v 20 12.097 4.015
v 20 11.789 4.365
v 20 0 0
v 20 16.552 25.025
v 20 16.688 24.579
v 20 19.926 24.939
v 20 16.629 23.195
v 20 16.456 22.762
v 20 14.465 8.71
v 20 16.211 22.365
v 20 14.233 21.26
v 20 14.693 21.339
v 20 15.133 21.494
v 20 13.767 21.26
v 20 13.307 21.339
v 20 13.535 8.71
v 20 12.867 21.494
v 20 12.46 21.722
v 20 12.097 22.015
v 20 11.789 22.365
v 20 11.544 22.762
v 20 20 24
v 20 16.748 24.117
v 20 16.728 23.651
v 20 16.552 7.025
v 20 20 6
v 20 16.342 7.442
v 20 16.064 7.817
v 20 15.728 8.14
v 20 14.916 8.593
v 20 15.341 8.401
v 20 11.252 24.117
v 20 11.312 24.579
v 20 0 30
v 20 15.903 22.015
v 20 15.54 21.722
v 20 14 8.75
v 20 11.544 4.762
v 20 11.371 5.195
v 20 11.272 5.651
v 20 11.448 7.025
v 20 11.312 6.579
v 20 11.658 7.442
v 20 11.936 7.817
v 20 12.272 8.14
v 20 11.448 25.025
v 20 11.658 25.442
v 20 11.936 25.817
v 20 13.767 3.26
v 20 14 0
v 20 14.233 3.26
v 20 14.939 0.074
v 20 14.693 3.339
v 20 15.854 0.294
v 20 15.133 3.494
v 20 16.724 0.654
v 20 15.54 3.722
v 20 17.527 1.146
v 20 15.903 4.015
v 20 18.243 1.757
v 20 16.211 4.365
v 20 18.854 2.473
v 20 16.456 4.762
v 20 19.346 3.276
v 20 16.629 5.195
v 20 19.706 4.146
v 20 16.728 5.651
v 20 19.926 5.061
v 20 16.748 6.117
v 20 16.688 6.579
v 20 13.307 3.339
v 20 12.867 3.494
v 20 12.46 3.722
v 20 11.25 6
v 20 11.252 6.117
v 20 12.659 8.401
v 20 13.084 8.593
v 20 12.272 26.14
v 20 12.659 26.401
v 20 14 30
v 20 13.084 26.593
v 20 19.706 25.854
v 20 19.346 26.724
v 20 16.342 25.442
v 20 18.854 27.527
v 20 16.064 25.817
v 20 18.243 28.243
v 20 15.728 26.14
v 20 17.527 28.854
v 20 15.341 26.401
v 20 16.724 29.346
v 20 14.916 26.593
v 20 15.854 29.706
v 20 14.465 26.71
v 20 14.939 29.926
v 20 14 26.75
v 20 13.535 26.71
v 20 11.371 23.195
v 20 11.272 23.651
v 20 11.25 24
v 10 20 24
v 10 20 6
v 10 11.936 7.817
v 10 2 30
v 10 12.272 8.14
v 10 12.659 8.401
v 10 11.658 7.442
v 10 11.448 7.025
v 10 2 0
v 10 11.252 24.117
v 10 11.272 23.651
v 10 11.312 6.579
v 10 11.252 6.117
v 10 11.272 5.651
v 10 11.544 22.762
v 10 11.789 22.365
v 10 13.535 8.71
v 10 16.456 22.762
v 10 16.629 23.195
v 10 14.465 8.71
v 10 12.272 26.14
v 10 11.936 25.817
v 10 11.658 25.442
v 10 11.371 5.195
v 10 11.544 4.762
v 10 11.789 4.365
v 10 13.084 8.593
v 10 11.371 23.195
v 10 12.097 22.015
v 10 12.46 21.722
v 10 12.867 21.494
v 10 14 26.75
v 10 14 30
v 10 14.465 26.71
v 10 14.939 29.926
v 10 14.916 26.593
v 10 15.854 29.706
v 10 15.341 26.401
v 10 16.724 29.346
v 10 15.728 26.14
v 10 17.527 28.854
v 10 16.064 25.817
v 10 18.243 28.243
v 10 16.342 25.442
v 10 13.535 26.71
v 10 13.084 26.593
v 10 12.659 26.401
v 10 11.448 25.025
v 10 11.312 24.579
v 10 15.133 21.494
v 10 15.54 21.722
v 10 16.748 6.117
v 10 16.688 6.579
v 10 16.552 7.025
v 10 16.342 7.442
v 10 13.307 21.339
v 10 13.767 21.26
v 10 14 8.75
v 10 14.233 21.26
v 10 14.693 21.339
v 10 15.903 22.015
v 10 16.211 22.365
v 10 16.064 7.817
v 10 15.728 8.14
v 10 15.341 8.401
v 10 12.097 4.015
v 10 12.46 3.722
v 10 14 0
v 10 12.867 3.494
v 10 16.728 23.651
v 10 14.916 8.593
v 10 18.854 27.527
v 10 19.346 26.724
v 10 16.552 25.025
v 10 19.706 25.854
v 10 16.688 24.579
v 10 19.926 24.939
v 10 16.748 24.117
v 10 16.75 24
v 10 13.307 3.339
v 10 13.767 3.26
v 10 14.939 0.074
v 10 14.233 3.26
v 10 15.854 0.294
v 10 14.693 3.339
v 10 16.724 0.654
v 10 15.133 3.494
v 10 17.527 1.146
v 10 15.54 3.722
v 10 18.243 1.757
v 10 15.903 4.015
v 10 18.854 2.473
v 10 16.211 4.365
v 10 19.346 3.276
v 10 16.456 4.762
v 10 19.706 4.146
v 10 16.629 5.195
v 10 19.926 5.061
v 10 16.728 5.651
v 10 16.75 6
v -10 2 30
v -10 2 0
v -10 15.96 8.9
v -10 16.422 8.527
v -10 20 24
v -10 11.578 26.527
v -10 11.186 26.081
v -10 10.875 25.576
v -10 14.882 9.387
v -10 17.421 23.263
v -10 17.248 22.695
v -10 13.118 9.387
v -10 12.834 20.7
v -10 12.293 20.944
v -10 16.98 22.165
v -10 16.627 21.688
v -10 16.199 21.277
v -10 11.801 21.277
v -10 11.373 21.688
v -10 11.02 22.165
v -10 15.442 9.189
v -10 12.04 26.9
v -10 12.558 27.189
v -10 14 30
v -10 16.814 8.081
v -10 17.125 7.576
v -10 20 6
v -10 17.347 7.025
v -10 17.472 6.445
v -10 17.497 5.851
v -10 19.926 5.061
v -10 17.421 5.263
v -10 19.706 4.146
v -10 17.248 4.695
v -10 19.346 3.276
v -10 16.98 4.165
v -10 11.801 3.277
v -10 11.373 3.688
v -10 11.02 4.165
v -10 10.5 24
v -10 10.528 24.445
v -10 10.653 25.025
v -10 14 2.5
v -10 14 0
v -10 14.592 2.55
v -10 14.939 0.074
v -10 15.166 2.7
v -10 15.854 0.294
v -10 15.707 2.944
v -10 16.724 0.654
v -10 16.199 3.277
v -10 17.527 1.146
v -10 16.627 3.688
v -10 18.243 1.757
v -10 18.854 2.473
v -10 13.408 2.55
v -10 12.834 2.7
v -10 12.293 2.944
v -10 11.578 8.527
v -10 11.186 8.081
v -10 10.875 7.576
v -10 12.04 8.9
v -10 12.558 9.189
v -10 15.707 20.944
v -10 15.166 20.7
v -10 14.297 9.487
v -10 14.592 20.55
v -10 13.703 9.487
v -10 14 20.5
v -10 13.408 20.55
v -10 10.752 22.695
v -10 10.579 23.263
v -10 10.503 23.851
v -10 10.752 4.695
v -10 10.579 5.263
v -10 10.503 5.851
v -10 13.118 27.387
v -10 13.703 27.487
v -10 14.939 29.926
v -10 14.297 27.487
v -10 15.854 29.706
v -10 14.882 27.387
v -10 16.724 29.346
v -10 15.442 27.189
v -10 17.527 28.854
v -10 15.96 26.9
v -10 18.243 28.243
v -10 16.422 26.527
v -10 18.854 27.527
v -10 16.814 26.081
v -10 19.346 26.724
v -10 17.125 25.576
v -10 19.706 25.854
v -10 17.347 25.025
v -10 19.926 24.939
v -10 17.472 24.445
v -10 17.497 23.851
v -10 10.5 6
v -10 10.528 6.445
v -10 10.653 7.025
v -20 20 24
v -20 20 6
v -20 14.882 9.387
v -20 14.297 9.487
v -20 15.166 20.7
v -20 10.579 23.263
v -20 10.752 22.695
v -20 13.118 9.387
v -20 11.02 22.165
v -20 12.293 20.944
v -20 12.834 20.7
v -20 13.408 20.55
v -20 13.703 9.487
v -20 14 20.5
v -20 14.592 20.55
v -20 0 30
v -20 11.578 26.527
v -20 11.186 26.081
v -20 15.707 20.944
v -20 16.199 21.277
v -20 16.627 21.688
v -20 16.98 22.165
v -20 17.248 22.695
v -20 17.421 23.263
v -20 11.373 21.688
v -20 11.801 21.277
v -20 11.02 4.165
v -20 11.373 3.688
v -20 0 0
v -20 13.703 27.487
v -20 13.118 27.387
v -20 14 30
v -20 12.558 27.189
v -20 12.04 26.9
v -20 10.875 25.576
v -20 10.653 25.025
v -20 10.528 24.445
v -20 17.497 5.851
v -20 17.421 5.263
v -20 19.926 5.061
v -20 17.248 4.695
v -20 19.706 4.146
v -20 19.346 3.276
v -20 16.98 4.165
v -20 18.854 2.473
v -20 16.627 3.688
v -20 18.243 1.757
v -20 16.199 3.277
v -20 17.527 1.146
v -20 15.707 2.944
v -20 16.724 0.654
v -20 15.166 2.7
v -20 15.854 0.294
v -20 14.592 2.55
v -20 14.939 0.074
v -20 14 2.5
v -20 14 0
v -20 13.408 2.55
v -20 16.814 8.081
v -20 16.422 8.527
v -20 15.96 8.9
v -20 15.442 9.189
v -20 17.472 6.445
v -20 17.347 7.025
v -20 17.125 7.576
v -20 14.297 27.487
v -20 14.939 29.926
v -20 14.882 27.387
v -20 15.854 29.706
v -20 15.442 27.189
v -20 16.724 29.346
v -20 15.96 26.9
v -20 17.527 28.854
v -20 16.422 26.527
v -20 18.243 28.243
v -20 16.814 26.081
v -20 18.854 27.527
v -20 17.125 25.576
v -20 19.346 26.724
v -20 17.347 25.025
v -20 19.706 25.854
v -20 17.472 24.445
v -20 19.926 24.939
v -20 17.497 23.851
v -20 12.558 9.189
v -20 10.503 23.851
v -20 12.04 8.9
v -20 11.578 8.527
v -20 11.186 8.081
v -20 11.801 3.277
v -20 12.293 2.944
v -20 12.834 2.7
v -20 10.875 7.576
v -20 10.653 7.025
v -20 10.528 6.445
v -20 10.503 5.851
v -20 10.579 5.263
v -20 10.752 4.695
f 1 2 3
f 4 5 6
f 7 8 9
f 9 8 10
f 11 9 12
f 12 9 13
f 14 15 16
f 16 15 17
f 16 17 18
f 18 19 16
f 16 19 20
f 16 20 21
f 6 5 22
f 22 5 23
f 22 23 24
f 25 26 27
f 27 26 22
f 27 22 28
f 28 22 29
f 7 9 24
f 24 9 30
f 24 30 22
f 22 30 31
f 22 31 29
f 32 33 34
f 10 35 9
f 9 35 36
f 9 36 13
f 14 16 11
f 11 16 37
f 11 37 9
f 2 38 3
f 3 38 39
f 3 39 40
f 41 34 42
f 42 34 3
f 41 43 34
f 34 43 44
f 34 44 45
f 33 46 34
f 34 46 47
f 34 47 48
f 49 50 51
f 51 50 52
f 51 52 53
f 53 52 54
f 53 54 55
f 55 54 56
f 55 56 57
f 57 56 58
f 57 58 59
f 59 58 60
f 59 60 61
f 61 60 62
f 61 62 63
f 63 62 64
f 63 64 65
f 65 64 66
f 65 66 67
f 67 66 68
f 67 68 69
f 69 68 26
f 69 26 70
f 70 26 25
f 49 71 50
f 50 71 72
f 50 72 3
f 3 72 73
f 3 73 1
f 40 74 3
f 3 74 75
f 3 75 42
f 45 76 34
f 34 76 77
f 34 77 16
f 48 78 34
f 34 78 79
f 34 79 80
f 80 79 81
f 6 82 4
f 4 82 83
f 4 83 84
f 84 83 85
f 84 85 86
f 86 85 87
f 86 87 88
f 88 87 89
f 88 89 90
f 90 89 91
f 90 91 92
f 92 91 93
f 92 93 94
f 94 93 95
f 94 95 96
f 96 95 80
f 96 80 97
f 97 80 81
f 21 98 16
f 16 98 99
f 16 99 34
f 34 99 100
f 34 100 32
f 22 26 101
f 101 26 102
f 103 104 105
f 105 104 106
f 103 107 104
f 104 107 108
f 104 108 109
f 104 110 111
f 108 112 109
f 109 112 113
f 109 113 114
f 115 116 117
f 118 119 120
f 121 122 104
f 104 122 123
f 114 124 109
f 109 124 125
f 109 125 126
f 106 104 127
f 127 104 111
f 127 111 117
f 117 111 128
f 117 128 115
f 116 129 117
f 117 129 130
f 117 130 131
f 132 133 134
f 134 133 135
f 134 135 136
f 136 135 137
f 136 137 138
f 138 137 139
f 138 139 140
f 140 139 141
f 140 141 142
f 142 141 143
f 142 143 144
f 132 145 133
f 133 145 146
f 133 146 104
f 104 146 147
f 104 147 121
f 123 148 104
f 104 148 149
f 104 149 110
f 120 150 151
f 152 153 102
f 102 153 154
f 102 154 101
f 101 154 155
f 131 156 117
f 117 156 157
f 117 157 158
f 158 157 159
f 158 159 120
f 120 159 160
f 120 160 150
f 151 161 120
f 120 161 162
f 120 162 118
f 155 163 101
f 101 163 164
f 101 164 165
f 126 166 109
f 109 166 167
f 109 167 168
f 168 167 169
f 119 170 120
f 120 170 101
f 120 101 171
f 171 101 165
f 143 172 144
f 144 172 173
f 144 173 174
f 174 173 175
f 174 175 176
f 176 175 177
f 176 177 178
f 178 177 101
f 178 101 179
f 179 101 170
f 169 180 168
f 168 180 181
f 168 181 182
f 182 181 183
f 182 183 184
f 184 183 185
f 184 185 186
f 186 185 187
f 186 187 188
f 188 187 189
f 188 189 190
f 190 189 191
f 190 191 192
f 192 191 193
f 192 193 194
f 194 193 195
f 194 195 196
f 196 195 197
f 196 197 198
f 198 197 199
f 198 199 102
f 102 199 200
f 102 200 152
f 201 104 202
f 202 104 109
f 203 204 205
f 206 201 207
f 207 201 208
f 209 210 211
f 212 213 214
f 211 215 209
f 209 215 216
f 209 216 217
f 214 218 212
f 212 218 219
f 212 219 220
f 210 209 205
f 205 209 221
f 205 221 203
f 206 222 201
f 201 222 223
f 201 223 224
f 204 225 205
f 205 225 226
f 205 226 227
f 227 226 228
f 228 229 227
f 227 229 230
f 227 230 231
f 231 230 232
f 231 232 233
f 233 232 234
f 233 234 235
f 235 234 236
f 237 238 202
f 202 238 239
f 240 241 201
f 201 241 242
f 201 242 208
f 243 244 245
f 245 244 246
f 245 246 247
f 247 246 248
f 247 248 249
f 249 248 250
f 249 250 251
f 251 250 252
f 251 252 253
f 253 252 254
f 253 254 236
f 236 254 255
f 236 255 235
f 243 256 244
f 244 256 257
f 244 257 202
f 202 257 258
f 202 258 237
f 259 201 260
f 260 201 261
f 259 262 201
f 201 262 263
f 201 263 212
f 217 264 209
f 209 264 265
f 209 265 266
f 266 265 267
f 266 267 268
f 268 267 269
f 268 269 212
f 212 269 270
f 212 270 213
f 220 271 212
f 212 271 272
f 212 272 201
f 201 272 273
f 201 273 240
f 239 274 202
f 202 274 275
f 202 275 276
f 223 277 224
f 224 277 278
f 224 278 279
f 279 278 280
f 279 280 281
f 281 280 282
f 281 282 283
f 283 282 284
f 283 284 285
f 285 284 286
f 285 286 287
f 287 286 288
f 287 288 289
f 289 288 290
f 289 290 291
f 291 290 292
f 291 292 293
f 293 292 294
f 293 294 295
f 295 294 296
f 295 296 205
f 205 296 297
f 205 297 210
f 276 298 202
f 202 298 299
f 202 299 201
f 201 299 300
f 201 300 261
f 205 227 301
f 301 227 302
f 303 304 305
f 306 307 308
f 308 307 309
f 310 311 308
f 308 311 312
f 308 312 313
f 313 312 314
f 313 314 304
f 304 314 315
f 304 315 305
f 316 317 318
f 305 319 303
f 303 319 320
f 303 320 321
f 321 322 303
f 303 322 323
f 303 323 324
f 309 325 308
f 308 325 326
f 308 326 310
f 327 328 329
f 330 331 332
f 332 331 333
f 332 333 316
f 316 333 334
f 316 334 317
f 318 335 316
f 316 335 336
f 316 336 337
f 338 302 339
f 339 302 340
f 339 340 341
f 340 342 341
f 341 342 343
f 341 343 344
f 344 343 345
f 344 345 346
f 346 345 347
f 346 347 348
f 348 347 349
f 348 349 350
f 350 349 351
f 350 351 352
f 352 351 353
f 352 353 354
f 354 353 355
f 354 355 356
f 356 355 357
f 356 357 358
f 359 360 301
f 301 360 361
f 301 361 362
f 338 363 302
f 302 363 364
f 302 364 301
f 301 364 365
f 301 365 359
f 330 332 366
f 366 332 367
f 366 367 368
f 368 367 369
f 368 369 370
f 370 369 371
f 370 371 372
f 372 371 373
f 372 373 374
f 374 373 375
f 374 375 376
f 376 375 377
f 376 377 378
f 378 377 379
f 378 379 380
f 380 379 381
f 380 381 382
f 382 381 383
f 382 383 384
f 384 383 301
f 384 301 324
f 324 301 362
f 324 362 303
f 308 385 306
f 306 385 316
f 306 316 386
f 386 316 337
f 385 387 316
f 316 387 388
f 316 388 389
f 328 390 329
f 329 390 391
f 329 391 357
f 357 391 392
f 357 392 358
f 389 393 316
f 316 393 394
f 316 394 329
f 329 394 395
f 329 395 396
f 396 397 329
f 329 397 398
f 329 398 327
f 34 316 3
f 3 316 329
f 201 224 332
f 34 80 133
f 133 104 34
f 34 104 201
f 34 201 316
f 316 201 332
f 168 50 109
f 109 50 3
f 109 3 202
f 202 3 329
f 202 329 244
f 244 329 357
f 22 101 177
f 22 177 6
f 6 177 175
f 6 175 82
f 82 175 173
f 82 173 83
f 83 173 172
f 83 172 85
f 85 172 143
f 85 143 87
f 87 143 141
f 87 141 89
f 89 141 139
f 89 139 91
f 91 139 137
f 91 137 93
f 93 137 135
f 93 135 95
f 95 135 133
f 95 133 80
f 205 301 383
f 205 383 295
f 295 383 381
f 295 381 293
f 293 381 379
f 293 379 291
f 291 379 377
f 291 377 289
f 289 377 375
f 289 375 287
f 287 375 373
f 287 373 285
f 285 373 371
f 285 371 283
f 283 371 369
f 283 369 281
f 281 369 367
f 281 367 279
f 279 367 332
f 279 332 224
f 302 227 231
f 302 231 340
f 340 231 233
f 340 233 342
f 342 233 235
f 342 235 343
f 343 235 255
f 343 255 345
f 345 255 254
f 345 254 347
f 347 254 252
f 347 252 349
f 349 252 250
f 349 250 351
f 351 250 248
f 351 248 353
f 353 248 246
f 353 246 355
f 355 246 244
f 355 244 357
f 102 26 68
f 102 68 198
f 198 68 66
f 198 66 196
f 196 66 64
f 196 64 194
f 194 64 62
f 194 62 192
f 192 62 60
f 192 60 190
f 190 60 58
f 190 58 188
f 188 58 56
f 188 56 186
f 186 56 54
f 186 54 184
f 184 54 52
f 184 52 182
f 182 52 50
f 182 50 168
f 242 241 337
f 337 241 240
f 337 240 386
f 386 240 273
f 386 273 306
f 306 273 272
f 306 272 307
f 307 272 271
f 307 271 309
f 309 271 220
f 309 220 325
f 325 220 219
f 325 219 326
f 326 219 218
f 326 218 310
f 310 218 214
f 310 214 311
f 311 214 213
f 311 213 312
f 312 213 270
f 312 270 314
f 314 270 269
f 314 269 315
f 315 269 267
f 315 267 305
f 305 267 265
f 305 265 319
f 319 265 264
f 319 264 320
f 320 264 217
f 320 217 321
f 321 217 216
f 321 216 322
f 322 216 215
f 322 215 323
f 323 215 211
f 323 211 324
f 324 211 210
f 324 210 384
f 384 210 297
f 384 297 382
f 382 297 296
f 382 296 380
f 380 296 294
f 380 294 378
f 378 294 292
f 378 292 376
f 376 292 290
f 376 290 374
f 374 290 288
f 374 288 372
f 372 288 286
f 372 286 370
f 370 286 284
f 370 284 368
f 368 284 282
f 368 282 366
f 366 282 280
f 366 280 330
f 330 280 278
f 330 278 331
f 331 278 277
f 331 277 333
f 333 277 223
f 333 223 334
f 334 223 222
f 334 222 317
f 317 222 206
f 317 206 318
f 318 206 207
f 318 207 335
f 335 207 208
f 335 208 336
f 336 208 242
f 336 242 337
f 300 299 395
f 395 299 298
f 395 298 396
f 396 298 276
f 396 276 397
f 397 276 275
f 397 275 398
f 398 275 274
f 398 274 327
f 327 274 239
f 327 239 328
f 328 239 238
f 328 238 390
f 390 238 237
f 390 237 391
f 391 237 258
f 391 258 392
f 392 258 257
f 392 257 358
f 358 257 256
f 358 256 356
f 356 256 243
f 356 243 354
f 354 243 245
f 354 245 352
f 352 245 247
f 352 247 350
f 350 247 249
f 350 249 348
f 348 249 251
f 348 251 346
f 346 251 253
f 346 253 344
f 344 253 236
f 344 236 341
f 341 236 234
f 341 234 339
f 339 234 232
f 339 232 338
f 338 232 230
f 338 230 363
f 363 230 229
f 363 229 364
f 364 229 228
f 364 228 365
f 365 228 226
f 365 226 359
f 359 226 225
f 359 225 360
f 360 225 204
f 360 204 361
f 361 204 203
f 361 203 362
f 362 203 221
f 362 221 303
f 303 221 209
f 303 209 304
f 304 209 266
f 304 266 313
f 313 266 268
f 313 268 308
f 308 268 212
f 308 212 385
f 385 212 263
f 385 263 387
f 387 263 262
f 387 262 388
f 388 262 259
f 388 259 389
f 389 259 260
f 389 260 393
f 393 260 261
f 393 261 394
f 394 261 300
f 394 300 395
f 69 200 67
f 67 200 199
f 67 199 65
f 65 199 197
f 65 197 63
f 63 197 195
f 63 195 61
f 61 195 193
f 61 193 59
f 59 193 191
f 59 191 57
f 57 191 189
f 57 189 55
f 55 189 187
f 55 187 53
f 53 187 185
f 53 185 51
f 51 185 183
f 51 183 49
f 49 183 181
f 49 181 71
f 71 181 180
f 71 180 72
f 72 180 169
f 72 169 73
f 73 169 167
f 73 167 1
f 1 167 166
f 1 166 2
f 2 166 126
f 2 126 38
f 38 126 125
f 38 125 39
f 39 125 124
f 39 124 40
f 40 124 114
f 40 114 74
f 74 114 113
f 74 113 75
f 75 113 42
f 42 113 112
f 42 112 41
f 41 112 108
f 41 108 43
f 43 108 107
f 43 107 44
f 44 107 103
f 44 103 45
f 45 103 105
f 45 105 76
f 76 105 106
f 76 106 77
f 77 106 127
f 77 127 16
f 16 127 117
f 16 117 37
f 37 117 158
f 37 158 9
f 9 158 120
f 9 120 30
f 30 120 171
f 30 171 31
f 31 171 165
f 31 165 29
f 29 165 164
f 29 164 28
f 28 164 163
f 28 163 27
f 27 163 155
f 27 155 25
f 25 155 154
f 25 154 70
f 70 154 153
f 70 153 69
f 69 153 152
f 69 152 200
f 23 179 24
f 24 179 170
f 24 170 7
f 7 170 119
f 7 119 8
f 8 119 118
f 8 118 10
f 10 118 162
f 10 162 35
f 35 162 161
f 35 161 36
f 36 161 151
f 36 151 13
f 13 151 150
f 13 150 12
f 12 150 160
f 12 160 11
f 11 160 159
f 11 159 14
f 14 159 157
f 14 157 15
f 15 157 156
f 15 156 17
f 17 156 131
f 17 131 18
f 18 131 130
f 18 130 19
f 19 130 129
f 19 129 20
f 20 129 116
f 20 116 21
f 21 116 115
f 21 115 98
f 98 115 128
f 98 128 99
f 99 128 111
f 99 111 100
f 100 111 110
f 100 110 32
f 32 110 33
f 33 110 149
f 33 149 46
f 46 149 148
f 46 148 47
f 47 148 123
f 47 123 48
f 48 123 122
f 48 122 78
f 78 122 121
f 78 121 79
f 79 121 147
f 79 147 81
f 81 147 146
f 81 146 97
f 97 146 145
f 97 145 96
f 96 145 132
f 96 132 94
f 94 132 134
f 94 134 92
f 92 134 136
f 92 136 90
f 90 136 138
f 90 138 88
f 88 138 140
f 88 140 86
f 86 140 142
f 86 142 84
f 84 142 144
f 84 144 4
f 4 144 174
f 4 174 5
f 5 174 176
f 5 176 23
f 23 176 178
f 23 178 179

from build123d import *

# Parameters (mm, degrees)
BOSS_EXTRUDE1_DEPTH = 30
FILLET1_R           = 6
SKETCH2_R           = 3.5
CUT_EXTRUDE1_DEPTH  = 30
SKETCH3_R           = 2.75
CUT_EXTRUDE2_DEPTH  = 30


with BuildPart() as part:
    # Sketch1 → Boss-Extrude1 (new body)
    with BuildSketch(Plane.XY):
        Polygon((0, 0), (-20, 0), (-20, 20), (-10, 20), (-10, 2), (10, 2), (10, 20), (20, 20), (20, 0), align=None)
    extrude(amount=BOSS_EXTRUDE1_DEPTH)

    # Fillet1
    fillet1_edges = [part.edges().sort_by_distance(p)[0] for p in [
        (15, 20, 30),
        (15, 20, 0),
        (-15, 20, 30),
        (-15, 20, 0),
    ]]
    fillet(fillet1_edges, radius=FILLET1_R)

    # Sketch2 → Cut-Extrude1 (cut)
    with BuildSketch(Plane(origin=(0, 0, 0), x_dir=(0, 0, -1), z_dir=(1, 0, 0))):
        with Locations((-24, 14)):
            Circle(SKETCH2_R)
        with Locations((-6, 14)):
            Circle(SKETCH2_R)
    extrude(amount=-CUT_EXTRUDE1_DEPTH, mode=Mode.SUBTRACT)

    # Sketch3 → Cut-Extrude2 (cut)
    with BuildSketch(Plane(origin=(0, 0, 0), x_dir=(0, 0, -1), z_dir=(1, 0, 0))):
        with Locations(Location((-6, 14, 0), (0, 0, 90))):
            Circle(SKETCH3_R)
        with Locations(Location((-24, 14, 0), (0, 0, 90))):
            Circle(SKETCH3_R)
    extrude(amount=CUT_EXTRUDE2_DEPTH, mode=Mode.SUBTRACT)


solid = part.part
